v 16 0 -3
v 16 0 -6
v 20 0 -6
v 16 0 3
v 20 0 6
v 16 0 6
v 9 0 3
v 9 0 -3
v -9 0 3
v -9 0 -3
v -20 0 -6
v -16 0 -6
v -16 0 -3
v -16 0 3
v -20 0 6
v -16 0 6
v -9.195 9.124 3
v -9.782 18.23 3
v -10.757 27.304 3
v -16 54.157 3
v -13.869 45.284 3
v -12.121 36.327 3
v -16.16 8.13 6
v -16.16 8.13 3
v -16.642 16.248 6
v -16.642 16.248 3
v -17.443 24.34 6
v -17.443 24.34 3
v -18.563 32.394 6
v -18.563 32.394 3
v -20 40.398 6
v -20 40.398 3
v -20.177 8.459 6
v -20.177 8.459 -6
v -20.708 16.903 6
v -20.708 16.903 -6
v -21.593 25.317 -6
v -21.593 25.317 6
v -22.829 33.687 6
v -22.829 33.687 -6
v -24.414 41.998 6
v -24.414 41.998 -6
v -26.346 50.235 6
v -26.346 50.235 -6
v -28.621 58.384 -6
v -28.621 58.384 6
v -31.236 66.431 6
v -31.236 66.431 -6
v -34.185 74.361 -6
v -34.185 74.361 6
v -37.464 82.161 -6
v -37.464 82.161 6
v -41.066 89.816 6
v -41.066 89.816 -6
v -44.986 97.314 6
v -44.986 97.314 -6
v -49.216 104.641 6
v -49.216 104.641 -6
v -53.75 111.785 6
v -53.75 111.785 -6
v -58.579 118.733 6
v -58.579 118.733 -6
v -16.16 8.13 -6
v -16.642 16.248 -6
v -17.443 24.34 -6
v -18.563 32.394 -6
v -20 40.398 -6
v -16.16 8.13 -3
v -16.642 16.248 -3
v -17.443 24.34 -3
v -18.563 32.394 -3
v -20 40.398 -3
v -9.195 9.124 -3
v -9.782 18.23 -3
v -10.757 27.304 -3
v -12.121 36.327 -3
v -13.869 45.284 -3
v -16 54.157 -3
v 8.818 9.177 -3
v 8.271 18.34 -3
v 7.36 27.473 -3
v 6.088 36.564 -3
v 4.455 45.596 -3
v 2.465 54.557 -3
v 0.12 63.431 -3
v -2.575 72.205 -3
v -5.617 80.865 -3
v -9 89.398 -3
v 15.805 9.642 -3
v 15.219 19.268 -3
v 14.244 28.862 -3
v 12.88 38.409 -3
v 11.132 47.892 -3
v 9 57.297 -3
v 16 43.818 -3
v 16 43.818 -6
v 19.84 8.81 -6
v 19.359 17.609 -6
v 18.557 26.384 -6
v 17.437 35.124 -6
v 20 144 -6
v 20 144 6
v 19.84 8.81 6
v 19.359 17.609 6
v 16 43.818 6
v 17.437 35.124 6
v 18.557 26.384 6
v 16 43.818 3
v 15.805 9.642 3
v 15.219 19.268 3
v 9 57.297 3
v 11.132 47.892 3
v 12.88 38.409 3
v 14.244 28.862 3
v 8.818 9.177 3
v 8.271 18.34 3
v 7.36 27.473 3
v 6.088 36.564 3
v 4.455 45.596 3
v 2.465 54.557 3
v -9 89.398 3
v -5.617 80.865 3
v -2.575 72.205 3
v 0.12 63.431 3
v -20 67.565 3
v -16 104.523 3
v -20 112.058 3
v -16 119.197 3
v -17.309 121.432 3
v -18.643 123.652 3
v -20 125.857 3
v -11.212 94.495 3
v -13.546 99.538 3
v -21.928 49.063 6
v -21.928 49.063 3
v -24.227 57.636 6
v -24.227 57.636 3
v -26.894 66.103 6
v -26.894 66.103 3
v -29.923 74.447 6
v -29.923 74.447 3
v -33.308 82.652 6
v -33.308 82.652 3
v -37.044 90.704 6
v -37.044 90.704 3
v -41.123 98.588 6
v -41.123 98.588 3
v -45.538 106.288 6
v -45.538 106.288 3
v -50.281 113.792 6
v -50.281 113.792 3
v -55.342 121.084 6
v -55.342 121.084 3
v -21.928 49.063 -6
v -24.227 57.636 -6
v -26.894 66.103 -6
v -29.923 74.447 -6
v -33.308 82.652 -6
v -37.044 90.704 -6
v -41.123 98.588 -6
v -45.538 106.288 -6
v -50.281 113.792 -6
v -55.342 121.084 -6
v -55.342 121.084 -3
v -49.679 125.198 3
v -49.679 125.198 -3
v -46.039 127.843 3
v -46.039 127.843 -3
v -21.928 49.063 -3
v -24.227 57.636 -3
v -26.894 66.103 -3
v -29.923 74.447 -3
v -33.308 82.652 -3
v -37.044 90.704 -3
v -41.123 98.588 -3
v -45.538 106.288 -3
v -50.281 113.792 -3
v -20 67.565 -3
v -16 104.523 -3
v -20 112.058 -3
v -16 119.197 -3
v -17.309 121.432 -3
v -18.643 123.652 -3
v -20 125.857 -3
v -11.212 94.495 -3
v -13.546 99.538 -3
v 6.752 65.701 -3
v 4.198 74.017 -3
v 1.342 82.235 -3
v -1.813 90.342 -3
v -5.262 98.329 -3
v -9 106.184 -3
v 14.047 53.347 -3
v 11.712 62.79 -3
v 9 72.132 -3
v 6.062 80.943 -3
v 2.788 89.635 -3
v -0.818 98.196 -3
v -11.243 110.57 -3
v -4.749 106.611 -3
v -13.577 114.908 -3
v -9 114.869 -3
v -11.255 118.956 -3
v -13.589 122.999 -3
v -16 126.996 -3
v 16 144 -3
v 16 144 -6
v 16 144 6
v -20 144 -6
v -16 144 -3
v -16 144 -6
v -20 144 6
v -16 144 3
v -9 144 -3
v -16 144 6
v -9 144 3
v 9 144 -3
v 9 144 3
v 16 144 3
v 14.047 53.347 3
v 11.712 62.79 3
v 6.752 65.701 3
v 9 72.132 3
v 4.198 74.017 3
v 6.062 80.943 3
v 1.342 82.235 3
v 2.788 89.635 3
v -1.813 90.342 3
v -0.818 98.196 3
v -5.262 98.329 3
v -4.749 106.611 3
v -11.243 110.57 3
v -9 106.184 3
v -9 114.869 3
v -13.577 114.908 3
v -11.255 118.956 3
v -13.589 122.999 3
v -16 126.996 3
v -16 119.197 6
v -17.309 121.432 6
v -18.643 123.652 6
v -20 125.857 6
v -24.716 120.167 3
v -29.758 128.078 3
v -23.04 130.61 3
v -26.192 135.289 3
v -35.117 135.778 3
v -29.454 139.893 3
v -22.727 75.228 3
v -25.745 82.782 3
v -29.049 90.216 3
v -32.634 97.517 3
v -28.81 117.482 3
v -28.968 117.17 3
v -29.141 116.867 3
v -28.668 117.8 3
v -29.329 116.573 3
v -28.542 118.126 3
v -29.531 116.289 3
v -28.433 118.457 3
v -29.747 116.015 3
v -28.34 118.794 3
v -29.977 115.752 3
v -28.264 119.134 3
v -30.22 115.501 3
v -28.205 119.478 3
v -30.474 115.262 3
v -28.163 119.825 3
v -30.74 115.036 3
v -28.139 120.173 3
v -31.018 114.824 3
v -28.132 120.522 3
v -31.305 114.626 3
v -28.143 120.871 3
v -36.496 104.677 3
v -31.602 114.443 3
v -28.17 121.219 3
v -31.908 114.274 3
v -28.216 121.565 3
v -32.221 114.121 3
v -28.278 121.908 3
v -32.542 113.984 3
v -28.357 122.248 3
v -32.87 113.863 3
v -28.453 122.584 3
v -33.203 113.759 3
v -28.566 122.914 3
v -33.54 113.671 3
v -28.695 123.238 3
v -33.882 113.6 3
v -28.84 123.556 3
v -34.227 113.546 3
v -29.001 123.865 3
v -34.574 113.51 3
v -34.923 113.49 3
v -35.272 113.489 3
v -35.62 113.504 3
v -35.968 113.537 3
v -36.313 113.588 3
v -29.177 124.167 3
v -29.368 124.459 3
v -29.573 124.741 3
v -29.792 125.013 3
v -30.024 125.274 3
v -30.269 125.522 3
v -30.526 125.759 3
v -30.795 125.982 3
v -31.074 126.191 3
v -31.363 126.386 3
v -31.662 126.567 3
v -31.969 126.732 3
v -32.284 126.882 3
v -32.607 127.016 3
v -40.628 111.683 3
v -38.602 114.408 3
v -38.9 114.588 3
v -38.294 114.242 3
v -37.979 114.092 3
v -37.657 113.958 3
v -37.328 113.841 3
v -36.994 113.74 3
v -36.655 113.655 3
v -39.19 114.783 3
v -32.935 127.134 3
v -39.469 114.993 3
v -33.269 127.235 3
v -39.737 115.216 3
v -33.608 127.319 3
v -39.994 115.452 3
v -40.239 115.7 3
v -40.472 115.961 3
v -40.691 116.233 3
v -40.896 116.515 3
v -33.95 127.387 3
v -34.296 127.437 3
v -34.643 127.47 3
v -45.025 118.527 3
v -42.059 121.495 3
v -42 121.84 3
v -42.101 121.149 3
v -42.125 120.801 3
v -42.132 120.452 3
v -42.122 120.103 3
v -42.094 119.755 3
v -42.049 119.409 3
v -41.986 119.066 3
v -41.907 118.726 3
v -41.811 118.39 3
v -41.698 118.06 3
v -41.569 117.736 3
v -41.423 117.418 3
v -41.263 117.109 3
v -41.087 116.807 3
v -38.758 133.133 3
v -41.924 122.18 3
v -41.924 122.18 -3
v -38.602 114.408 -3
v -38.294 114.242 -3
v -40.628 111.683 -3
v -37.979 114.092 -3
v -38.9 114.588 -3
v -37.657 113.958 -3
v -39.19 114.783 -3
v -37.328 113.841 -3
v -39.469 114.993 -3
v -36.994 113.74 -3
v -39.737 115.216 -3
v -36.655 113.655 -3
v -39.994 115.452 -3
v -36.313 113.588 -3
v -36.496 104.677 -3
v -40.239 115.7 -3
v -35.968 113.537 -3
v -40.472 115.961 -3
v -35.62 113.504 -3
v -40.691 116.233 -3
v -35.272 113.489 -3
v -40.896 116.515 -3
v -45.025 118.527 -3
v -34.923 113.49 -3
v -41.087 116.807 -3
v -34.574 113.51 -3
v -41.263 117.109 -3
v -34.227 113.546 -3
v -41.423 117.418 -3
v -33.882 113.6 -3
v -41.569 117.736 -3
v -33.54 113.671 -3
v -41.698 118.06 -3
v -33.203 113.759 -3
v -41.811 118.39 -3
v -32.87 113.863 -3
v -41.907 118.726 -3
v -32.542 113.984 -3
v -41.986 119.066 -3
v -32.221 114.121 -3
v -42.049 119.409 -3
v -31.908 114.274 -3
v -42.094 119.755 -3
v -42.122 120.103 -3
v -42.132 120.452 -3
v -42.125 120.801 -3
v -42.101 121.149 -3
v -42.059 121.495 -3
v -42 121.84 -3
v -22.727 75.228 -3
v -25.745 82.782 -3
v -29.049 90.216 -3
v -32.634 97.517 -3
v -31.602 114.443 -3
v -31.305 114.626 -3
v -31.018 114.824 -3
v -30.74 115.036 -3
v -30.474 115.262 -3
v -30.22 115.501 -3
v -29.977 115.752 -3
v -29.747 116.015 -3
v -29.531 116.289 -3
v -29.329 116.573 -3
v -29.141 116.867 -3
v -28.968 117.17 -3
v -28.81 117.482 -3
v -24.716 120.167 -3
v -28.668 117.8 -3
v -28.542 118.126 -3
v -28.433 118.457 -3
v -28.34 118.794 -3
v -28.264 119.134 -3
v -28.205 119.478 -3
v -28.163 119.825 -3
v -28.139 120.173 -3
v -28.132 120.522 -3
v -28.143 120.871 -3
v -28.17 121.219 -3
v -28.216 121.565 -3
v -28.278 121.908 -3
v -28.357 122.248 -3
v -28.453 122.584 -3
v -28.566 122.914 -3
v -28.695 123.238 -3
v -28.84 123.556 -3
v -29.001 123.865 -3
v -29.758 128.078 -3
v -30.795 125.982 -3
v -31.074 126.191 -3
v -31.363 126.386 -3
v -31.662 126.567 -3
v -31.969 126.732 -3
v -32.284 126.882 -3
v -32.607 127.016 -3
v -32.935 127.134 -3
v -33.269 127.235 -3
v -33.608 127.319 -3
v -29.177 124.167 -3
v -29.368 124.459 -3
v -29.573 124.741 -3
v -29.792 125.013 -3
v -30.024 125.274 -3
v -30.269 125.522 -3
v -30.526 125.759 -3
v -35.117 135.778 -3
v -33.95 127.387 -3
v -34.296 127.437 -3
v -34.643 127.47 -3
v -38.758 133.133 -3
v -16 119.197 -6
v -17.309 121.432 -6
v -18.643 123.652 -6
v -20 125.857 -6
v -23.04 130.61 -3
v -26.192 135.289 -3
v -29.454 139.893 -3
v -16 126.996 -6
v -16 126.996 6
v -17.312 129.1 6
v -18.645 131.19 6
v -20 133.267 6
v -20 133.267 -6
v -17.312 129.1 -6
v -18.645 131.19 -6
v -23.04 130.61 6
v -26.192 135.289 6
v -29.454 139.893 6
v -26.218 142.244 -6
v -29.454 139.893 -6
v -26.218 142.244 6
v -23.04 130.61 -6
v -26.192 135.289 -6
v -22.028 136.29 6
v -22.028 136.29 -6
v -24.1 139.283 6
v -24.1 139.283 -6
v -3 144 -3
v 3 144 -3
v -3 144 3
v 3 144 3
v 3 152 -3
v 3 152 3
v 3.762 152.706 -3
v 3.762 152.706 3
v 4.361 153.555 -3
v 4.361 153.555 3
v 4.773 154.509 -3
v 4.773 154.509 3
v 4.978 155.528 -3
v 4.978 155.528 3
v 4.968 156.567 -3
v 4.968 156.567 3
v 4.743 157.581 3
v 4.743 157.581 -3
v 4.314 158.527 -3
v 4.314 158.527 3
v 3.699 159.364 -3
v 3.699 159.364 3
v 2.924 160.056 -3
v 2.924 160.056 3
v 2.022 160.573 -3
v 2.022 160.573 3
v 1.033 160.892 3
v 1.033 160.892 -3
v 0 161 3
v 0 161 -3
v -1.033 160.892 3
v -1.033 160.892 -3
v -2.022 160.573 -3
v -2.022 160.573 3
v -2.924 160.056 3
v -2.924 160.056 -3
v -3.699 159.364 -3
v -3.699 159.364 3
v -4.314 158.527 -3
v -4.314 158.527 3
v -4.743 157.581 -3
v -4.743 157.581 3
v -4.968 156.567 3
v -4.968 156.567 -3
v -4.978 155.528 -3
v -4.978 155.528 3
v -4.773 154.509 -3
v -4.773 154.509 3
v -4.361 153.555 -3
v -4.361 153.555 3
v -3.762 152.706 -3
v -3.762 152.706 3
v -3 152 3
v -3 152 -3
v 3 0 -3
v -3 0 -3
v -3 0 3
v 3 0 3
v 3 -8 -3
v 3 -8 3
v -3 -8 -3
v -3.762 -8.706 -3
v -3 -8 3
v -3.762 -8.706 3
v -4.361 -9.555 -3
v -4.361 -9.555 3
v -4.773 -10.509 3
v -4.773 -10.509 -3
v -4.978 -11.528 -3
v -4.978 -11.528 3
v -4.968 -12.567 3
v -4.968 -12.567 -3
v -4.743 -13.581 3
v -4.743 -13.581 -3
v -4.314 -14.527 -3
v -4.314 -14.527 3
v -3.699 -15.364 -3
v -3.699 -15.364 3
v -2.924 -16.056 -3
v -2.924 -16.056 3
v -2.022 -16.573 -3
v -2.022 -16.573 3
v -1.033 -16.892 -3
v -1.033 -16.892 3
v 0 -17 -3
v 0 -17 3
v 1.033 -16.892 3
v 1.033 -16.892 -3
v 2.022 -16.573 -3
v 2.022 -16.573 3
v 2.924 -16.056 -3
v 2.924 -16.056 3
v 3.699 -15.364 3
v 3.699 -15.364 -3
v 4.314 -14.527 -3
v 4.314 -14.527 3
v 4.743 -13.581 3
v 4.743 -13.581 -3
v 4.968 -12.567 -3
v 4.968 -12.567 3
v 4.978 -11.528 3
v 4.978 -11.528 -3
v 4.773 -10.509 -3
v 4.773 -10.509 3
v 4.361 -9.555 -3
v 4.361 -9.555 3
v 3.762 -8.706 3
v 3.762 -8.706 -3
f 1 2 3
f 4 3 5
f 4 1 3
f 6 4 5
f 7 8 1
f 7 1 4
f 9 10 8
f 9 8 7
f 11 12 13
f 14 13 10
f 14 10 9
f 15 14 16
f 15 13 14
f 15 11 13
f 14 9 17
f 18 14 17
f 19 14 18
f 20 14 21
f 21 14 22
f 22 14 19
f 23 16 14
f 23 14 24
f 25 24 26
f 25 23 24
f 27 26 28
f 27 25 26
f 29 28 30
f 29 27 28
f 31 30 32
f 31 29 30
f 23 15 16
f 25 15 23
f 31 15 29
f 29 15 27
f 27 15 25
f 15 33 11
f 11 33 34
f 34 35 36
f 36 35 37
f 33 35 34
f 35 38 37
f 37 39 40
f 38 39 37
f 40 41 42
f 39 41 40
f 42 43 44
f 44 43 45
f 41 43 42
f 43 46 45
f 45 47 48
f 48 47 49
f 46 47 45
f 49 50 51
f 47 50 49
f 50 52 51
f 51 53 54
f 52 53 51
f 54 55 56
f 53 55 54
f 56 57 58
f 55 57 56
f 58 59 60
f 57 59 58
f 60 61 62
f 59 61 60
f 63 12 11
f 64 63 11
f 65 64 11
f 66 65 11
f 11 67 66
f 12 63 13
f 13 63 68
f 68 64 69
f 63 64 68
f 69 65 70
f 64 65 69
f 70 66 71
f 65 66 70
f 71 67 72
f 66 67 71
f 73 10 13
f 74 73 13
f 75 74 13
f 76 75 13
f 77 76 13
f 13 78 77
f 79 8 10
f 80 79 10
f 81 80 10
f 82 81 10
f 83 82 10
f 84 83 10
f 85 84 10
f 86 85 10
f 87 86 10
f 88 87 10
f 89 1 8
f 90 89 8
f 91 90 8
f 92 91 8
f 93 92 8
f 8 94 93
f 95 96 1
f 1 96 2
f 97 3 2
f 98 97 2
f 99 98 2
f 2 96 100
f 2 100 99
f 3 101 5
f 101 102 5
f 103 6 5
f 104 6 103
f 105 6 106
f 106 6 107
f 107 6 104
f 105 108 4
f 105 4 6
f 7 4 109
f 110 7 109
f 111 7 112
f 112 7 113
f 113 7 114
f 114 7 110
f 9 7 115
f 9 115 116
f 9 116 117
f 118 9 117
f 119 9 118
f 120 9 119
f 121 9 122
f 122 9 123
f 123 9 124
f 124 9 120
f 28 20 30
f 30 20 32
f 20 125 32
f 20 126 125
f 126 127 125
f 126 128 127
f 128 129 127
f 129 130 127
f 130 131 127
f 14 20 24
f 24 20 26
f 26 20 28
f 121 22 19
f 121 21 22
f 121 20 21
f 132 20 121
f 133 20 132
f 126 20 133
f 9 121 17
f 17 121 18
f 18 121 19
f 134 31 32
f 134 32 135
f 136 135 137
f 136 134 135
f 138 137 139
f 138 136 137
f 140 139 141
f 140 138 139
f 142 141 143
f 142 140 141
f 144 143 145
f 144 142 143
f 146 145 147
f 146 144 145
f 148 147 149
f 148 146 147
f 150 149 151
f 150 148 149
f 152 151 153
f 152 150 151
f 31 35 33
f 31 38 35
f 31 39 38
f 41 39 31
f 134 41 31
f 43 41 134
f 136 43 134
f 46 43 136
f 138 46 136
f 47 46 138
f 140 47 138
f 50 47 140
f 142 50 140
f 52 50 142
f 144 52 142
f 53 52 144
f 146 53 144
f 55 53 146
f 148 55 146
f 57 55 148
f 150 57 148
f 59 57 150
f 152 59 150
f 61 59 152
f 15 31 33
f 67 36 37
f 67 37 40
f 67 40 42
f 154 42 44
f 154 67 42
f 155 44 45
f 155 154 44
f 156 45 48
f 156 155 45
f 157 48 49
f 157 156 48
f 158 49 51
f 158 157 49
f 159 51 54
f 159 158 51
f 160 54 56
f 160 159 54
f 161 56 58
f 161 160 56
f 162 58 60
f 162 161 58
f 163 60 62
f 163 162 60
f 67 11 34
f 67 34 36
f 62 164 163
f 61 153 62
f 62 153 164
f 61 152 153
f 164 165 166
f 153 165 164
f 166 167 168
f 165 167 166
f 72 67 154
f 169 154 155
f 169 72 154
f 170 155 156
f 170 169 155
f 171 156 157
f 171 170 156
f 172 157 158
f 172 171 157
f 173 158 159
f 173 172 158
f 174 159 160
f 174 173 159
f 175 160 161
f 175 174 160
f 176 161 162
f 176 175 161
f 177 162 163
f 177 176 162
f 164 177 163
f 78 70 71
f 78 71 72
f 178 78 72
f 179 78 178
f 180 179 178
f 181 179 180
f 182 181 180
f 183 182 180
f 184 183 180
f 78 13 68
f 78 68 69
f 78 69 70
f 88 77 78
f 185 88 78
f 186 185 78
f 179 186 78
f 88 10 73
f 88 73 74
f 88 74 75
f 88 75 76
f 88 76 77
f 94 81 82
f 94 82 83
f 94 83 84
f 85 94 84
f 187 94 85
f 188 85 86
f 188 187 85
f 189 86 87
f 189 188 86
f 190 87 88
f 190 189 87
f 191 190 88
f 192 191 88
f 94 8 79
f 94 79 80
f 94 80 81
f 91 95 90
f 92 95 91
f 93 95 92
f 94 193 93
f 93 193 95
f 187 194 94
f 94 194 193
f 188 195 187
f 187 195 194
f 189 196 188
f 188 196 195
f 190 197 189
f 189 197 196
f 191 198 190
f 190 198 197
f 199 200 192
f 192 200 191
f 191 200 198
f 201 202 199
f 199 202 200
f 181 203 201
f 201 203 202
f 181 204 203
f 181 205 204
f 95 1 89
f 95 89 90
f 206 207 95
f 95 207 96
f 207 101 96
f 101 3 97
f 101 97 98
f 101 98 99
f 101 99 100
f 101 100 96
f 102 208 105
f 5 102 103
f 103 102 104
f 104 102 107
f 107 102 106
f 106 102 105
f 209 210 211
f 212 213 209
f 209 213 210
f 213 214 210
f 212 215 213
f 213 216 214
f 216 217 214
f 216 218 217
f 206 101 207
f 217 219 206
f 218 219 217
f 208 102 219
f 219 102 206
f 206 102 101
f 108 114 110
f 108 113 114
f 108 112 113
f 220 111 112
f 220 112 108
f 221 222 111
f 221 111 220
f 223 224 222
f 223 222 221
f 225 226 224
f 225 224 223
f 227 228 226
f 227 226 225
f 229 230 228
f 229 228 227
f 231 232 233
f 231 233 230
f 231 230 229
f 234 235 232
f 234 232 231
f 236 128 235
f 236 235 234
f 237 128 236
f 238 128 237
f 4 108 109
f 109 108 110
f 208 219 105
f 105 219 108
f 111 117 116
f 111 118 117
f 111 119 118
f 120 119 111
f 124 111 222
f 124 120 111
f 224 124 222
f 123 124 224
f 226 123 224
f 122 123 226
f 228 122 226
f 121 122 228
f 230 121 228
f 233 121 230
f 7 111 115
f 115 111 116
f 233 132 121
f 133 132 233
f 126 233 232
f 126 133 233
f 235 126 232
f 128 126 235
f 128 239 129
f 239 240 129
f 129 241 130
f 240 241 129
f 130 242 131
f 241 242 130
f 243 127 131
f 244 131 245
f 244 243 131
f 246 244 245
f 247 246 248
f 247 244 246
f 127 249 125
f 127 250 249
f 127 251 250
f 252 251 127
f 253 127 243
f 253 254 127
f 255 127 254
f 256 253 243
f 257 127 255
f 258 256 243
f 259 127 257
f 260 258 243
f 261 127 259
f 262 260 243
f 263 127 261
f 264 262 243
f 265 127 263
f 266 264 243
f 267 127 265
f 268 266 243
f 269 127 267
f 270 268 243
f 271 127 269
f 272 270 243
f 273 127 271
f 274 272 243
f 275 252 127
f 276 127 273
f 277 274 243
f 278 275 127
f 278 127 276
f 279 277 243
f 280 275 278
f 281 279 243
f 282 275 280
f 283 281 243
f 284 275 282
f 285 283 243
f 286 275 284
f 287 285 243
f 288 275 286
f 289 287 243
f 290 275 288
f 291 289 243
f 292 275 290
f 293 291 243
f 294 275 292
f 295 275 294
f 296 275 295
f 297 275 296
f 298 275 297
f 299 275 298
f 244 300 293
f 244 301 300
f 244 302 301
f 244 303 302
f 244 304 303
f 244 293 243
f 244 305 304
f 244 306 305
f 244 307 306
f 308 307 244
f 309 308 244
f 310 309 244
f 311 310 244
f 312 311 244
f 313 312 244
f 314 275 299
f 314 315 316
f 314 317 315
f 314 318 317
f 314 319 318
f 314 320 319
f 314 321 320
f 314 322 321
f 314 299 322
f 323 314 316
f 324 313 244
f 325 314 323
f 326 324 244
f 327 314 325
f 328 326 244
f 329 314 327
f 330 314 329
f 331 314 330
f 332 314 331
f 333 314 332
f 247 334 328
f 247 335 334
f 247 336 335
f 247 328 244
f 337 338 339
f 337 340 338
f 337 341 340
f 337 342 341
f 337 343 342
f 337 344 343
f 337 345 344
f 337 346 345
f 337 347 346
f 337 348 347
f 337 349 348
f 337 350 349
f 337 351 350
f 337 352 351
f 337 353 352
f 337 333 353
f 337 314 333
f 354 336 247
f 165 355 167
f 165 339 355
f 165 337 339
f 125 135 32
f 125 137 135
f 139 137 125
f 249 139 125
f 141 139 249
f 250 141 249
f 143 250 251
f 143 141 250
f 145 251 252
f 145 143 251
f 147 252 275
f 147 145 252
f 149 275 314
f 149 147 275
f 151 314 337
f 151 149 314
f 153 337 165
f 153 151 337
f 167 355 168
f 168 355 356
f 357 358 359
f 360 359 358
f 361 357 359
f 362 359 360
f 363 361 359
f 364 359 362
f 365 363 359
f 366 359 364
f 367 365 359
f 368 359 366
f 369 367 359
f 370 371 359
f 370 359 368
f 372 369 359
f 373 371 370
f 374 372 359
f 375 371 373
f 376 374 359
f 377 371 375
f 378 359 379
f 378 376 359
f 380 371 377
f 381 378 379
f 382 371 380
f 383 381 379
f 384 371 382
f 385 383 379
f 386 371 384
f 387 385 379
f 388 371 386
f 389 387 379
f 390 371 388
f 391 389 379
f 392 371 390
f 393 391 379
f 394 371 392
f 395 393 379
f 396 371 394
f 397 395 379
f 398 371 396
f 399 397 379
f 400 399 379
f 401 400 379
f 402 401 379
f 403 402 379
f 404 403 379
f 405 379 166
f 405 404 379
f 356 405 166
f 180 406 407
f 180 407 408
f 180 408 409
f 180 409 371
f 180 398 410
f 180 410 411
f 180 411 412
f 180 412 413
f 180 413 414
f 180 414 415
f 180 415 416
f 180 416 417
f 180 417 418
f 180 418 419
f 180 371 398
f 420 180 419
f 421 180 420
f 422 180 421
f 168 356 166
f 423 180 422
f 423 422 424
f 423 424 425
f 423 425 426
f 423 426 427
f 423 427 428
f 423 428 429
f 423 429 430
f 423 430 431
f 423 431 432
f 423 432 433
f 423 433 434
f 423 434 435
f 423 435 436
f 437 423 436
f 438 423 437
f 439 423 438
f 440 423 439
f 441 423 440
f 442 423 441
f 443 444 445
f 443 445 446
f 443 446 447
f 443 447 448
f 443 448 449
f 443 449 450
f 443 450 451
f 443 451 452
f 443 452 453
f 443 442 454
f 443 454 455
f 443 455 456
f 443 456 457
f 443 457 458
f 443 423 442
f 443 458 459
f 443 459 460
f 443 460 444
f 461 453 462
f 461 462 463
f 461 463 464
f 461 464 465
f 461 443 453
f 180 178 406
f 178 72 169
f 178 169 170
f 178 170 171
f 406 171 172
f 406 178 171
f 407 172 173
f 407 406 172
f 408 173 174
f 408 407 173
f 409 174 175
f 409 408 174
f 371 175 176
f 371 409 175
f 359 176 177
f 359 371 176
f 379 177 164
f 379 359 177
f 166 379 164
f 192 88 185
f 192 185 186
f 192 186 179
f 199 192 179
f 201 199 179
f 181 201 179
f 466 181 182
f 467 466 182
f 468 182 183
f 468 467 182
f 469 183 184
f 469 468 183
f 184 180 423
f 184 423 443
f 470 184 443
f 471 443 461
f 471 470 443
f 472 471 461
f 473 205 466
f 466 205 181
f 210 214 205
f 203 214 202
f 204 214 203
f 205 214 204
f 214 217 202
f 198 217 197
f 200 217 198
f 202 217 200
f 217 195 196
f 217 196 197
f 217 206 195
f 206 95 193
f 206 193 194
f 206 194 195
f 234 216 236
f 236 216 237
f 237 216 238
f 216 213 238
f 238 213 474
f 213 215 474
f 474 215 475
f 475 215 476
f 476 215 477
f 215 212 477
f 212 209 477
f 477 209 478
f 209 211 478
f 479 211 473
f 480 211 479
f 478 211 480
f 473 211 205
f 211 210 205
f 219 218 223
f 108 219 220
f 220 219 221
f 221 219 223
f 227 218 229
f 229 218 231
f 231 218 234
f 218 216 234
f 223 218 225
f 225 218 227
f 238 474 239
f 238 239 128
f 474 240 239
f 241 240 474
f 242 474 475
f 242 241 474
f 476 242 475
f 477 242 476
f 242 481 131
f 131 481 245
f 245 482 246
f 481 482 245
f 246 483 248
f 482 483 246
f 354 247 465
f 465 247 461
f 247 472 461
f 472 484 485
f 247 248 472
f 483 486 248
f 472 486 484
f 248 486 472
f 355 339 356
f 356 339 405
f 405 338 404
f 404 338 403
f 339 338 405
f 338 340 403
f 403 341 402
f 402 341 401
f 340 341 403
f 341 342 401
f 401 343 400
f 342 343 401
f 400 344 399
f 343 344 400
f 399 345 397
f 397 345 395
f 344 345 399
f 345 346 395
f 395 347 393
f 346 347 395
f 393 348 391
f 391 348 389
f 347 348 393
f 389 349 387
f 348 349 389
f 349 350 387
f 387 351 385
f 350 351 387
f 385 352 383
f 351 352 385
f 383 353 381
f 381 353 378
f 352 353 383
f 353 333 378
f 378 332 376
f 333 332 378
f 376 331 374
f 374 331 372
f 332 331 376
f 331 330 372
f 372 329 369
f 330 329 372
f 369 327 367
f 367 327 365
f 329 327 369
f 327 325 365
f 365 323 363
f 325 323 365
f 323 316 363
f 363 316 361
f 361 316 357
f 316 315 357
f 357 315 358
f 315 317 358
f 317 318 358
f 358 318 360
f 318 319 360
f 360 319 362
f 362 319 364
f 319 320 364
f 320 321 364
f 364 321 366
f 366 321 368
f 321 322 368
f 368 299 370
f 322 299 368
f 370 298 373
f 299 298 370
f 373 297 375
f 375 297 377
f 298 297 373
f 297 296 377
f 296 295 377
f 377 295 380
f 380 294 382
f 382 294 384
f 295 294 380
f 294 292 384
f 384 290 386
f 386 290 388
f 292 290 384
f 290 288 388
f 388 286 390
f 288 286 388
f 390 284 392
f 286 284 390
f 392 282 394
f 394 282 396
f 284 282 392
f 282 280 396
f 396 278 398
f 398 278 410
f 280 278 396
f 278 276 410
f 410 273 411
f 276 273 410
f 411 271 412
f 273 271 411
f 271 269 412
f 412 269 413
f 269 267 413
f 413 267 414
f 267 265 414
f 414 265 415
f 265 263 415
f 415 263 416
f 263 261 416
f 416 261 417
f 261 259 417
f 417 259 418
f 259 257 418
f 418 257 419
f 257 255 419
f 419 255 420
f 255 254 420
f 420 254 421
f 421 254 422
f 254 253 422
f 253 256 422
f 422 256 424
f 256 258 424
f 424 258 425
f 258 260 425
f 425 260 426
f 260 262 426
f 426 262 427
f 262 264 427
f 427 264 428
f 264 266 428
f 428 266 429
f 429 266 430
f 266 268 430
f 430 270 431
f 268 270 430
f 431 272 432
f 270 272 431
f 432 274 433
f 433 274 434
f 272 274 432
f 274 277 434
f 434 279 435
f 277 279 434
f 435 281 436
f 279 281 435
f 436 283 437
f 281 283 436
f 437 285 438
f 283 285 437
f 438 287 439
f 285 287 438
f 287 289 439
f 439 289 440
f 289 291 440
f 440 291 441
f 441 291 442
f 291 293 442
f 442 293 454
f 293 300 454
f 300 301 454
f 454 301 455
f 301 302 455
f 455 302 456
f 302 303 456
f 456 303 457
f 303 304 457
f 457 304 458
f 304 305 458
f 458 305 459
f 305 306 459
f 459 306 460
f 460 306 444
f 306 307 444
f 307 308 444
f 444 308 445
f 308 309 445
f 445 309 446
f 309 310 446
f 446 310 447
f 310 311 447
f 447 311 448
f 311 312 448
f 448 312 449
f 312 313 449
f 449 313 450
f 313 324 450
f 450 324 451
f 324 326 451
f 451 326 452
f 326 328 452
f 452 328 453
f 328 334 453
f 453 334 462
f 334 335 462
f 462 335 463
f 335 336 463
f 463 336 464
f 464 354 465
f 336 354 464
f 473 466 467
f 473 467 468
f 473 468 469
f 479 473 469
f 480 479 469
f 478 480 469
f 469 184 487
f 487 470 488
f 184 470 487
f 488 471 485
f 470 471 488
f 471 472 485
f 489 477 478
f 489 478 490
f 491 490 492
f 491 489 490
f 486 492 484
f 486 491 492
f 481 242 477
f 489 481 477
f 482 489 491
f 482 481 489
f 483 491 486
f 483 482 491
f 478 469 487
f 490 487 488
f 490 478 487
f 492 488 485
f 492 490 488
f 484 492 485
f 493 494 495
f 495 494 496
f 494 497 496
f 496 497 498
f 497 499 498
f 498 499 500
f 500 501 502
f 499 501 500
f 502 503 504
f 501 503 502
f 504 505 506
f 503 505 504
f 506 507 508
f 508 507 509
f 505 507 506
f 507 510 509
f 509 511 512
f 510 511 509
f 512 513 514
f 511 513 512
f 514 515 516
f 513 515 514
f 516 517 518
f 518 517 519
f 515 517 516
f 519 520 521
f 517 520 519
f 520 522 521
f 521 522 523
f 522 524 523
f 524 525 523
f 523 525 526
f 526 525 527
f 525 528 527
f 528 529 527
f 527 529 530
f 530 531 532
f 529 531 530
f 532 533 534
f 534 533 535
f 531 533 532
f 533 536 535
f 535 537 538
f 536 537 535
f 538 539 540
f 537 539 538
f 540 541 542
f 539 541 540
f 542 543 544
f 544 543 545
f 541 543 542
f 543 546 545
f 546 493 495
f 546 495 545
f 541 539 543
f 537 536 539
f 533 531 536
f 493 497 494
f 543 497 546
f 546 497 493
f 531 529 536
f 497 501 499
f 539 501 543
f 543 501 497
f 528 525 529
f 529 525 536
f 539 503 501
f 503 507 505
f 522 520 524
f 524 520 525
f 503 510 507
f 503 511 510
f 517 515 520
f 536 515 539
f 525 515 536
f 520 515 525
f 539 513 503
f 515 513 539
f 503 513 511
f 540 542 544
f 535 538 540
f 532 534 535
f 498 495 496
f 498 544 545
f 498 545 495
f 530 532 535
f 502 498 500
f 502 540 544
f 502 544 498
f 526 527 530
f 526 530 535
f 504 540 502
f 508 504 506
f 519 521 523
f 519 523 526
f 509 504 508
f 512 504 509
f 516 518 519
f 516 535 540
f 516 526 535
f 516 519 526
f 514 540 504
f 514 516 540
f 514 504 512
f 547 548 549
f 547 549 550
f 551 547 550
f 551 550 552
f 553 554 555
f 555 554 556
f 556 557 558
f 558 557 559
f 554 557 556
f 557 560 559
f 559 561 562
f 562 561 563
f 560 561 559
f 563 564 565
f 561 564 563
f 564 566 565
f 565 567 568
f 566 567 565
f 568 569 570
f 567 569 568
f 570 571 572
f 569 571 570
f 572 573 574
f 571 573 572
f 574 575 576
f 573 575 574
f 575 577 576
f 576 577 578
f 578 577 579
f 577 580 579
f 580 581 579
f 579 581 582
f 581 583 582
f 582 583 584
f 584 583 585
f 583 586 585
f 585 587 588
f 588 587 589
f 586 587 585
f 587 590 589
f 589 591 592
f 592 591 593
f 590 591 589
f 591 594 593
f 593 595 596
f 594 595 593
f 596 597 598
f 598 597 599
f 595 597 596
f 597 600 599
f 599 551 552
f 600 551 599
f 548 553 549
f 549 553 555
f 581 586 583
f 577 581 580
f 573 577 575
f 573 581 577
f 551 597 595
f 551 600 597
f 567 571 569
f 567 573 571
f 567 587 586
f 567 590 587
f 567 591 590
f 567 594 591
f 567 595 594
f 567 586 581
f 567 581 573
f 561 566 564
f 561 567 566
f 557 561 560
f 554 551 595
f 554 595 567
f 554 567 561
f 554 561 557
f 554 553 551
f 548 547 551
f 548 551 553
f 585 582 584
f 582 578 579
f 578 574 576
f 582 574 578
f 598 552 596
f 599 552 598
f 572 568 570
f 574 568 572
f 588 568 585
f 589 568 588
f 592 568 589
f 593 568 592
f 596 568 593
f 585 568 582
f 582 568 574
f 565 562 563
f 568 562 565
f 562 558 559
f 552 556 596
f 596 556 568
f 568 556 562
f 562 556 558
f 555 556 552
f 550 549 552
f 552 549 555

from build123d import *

# Parameters (mm, degrees)
SKETCH013_W       = 32
SKETCH013_H       = 3
POCKET_DEPTH      = 6.001
POCKET_DEPTH_BACK = -6.001
PAD_DEPTH         = 3
PAD001_DEPTH      = 3


with BuildPart() as body:
    # AdditivePipe: sweep along a path in Sketch002
    with BuildLine(Plane.XY) as additivepipe_path:
        ThreePointArc((0, 0), (-10.865453, 68.601773), (-42.398227, 130.488326))
    # Sketch → AdditivePipe (sweep)
    with BuildSketch(Plane.XZ):
        Polygon((-20, 6), (-20, -6), (-16, -6), (-16, -3), (-9, -3), (9, -3), (16, -3), (16, -6), (20, -6), (20, 6), (16, 6), (16, 3), (9, 3), (-9, 3), (-16, 3), (-16, 6), align=None)
    sweep(path=additivepipe_path.line)

    # AdditivePipe001: sweep along a path in Sketch001
    with BuildLine(Plane.XY) as additivepipe001_path:
        Line((0, 0), (0, 144))
    # Sketch → AdditivePipe001 (sweep)
    with BuildSketch(Plane.XZ):
        Polygon((-20, 6), (-20, -6), (-16, -6), (-16, -3), (-9, -3), (9, -3), (16, -3), (16, -6), (20, -6), (20, 6), (16, 6), (16, 3), (9, 3), (-9, 3), (-16, 3), (-16, 6), align=None)
    sweep(path=additivepipe001_path.line)

    # SubtractivePipe: sweep along a path in Sketch002
    with BuildLine(Plane.XY) as subtractivepipe_path:
        ThreePointArc((0, 0), (-10.865453, 68.601773), (-42.398227, 130.488326))
    # Sketch013 (on Face1 of AdditivePipe001) → SubtractivePipe (sweep, cut)
    with BuildSketch(Plane.XZ):
        with Locations((0, 4.5)):
            Rectangle(SKETCH013_W, SKETCH013_H)
    subtractivepipe = sweep(path=subtractivepipe_path.line, mode=Mode.SUBTRACT)

    # SubtractivePipe001: sweep along a path in Sketch001
    with BuildLine(Plane.XY) as subtractivepipe001_path:
        Line((0, 0), (0, 144))
    # Sketch013 (on Face1 of AdditivePipe001) → SubtractivePipe001 (sweep, cut)
    with BuildSketch(Plane.XZ):
        with Locations((0, 4.5)):
            Rectangle(SKETCH013_W, SKETCH013_H)
    subtractivepipe001 = sweep(path=subtractivepipe001_path.line, mode=Mode.SUBTRACT)

    # Mirrored: SubtractivePipe across XY
    add(subtractivepipe.mirror(Plane.XY), mode=Mode.SUBTRACT)

    # Mirrored001: SubtractivePipe001 across XY
    add(subtractivepipe001.mirror(Plane.XY), mode=Mode.SUBTRACT)

    # Sketch015 → Pocket (cut, two sides)
    with BuildSketch(Plane.XY) as pocket_sk:
        with BuildLine():
            Line((-46.038804, 127.843292), (-38.757651, 133.13336))
            Line((-38.757651, 133.13336), (-34.643154, 127.470241))
            ThreePointArc((-41.924307, 122.180173), (-31.017586, 114.824218), (-34.643154, 127.470241))
            Line((-46.038804, 127.843292), (-41.924307, 122.180173))
        make_face()
    extrude(amount=-POCKET_DEPTH, mode=Mode.SUBTRACT)
    extrude(pocket_sk.sketch, amount=-POCKET_DEPTH_BACK, mode=Mode.SUBTRACT)


with BuildPart() as body001:
    # Sketch008 → Pad (new body, symmetric)
    with BuildSketch(Plane.XY):
        with BuildLine():
            Line((-3, 0), (3, 0))
            Line((3, 0), (3, -8))
            ThreePointArc((-3, -8), (0, -17), (3, -8))
            Line((-3, 0), (-3, -8))
        make_face()
    extrude(amount=PAD_DEPTH, both=True)


with BuildPart() as body002:
    # Sketch011 → Pad001 (new body, symmetric)
    with BuildSketch(Plane.XY):
        with BuildLine():
            Line((-3, 144), (3, 144))
            Line((3, 144), (3, 152))
            ThreePointArc((3, 152), (0, 161), (-3, 152))
            Line((-3, 144), (-3, 152))
        make_face()
    extrude(amount=PAD001_DEPTH, both=True)


solid = Compound([body.part, body001.part, body002.part])
